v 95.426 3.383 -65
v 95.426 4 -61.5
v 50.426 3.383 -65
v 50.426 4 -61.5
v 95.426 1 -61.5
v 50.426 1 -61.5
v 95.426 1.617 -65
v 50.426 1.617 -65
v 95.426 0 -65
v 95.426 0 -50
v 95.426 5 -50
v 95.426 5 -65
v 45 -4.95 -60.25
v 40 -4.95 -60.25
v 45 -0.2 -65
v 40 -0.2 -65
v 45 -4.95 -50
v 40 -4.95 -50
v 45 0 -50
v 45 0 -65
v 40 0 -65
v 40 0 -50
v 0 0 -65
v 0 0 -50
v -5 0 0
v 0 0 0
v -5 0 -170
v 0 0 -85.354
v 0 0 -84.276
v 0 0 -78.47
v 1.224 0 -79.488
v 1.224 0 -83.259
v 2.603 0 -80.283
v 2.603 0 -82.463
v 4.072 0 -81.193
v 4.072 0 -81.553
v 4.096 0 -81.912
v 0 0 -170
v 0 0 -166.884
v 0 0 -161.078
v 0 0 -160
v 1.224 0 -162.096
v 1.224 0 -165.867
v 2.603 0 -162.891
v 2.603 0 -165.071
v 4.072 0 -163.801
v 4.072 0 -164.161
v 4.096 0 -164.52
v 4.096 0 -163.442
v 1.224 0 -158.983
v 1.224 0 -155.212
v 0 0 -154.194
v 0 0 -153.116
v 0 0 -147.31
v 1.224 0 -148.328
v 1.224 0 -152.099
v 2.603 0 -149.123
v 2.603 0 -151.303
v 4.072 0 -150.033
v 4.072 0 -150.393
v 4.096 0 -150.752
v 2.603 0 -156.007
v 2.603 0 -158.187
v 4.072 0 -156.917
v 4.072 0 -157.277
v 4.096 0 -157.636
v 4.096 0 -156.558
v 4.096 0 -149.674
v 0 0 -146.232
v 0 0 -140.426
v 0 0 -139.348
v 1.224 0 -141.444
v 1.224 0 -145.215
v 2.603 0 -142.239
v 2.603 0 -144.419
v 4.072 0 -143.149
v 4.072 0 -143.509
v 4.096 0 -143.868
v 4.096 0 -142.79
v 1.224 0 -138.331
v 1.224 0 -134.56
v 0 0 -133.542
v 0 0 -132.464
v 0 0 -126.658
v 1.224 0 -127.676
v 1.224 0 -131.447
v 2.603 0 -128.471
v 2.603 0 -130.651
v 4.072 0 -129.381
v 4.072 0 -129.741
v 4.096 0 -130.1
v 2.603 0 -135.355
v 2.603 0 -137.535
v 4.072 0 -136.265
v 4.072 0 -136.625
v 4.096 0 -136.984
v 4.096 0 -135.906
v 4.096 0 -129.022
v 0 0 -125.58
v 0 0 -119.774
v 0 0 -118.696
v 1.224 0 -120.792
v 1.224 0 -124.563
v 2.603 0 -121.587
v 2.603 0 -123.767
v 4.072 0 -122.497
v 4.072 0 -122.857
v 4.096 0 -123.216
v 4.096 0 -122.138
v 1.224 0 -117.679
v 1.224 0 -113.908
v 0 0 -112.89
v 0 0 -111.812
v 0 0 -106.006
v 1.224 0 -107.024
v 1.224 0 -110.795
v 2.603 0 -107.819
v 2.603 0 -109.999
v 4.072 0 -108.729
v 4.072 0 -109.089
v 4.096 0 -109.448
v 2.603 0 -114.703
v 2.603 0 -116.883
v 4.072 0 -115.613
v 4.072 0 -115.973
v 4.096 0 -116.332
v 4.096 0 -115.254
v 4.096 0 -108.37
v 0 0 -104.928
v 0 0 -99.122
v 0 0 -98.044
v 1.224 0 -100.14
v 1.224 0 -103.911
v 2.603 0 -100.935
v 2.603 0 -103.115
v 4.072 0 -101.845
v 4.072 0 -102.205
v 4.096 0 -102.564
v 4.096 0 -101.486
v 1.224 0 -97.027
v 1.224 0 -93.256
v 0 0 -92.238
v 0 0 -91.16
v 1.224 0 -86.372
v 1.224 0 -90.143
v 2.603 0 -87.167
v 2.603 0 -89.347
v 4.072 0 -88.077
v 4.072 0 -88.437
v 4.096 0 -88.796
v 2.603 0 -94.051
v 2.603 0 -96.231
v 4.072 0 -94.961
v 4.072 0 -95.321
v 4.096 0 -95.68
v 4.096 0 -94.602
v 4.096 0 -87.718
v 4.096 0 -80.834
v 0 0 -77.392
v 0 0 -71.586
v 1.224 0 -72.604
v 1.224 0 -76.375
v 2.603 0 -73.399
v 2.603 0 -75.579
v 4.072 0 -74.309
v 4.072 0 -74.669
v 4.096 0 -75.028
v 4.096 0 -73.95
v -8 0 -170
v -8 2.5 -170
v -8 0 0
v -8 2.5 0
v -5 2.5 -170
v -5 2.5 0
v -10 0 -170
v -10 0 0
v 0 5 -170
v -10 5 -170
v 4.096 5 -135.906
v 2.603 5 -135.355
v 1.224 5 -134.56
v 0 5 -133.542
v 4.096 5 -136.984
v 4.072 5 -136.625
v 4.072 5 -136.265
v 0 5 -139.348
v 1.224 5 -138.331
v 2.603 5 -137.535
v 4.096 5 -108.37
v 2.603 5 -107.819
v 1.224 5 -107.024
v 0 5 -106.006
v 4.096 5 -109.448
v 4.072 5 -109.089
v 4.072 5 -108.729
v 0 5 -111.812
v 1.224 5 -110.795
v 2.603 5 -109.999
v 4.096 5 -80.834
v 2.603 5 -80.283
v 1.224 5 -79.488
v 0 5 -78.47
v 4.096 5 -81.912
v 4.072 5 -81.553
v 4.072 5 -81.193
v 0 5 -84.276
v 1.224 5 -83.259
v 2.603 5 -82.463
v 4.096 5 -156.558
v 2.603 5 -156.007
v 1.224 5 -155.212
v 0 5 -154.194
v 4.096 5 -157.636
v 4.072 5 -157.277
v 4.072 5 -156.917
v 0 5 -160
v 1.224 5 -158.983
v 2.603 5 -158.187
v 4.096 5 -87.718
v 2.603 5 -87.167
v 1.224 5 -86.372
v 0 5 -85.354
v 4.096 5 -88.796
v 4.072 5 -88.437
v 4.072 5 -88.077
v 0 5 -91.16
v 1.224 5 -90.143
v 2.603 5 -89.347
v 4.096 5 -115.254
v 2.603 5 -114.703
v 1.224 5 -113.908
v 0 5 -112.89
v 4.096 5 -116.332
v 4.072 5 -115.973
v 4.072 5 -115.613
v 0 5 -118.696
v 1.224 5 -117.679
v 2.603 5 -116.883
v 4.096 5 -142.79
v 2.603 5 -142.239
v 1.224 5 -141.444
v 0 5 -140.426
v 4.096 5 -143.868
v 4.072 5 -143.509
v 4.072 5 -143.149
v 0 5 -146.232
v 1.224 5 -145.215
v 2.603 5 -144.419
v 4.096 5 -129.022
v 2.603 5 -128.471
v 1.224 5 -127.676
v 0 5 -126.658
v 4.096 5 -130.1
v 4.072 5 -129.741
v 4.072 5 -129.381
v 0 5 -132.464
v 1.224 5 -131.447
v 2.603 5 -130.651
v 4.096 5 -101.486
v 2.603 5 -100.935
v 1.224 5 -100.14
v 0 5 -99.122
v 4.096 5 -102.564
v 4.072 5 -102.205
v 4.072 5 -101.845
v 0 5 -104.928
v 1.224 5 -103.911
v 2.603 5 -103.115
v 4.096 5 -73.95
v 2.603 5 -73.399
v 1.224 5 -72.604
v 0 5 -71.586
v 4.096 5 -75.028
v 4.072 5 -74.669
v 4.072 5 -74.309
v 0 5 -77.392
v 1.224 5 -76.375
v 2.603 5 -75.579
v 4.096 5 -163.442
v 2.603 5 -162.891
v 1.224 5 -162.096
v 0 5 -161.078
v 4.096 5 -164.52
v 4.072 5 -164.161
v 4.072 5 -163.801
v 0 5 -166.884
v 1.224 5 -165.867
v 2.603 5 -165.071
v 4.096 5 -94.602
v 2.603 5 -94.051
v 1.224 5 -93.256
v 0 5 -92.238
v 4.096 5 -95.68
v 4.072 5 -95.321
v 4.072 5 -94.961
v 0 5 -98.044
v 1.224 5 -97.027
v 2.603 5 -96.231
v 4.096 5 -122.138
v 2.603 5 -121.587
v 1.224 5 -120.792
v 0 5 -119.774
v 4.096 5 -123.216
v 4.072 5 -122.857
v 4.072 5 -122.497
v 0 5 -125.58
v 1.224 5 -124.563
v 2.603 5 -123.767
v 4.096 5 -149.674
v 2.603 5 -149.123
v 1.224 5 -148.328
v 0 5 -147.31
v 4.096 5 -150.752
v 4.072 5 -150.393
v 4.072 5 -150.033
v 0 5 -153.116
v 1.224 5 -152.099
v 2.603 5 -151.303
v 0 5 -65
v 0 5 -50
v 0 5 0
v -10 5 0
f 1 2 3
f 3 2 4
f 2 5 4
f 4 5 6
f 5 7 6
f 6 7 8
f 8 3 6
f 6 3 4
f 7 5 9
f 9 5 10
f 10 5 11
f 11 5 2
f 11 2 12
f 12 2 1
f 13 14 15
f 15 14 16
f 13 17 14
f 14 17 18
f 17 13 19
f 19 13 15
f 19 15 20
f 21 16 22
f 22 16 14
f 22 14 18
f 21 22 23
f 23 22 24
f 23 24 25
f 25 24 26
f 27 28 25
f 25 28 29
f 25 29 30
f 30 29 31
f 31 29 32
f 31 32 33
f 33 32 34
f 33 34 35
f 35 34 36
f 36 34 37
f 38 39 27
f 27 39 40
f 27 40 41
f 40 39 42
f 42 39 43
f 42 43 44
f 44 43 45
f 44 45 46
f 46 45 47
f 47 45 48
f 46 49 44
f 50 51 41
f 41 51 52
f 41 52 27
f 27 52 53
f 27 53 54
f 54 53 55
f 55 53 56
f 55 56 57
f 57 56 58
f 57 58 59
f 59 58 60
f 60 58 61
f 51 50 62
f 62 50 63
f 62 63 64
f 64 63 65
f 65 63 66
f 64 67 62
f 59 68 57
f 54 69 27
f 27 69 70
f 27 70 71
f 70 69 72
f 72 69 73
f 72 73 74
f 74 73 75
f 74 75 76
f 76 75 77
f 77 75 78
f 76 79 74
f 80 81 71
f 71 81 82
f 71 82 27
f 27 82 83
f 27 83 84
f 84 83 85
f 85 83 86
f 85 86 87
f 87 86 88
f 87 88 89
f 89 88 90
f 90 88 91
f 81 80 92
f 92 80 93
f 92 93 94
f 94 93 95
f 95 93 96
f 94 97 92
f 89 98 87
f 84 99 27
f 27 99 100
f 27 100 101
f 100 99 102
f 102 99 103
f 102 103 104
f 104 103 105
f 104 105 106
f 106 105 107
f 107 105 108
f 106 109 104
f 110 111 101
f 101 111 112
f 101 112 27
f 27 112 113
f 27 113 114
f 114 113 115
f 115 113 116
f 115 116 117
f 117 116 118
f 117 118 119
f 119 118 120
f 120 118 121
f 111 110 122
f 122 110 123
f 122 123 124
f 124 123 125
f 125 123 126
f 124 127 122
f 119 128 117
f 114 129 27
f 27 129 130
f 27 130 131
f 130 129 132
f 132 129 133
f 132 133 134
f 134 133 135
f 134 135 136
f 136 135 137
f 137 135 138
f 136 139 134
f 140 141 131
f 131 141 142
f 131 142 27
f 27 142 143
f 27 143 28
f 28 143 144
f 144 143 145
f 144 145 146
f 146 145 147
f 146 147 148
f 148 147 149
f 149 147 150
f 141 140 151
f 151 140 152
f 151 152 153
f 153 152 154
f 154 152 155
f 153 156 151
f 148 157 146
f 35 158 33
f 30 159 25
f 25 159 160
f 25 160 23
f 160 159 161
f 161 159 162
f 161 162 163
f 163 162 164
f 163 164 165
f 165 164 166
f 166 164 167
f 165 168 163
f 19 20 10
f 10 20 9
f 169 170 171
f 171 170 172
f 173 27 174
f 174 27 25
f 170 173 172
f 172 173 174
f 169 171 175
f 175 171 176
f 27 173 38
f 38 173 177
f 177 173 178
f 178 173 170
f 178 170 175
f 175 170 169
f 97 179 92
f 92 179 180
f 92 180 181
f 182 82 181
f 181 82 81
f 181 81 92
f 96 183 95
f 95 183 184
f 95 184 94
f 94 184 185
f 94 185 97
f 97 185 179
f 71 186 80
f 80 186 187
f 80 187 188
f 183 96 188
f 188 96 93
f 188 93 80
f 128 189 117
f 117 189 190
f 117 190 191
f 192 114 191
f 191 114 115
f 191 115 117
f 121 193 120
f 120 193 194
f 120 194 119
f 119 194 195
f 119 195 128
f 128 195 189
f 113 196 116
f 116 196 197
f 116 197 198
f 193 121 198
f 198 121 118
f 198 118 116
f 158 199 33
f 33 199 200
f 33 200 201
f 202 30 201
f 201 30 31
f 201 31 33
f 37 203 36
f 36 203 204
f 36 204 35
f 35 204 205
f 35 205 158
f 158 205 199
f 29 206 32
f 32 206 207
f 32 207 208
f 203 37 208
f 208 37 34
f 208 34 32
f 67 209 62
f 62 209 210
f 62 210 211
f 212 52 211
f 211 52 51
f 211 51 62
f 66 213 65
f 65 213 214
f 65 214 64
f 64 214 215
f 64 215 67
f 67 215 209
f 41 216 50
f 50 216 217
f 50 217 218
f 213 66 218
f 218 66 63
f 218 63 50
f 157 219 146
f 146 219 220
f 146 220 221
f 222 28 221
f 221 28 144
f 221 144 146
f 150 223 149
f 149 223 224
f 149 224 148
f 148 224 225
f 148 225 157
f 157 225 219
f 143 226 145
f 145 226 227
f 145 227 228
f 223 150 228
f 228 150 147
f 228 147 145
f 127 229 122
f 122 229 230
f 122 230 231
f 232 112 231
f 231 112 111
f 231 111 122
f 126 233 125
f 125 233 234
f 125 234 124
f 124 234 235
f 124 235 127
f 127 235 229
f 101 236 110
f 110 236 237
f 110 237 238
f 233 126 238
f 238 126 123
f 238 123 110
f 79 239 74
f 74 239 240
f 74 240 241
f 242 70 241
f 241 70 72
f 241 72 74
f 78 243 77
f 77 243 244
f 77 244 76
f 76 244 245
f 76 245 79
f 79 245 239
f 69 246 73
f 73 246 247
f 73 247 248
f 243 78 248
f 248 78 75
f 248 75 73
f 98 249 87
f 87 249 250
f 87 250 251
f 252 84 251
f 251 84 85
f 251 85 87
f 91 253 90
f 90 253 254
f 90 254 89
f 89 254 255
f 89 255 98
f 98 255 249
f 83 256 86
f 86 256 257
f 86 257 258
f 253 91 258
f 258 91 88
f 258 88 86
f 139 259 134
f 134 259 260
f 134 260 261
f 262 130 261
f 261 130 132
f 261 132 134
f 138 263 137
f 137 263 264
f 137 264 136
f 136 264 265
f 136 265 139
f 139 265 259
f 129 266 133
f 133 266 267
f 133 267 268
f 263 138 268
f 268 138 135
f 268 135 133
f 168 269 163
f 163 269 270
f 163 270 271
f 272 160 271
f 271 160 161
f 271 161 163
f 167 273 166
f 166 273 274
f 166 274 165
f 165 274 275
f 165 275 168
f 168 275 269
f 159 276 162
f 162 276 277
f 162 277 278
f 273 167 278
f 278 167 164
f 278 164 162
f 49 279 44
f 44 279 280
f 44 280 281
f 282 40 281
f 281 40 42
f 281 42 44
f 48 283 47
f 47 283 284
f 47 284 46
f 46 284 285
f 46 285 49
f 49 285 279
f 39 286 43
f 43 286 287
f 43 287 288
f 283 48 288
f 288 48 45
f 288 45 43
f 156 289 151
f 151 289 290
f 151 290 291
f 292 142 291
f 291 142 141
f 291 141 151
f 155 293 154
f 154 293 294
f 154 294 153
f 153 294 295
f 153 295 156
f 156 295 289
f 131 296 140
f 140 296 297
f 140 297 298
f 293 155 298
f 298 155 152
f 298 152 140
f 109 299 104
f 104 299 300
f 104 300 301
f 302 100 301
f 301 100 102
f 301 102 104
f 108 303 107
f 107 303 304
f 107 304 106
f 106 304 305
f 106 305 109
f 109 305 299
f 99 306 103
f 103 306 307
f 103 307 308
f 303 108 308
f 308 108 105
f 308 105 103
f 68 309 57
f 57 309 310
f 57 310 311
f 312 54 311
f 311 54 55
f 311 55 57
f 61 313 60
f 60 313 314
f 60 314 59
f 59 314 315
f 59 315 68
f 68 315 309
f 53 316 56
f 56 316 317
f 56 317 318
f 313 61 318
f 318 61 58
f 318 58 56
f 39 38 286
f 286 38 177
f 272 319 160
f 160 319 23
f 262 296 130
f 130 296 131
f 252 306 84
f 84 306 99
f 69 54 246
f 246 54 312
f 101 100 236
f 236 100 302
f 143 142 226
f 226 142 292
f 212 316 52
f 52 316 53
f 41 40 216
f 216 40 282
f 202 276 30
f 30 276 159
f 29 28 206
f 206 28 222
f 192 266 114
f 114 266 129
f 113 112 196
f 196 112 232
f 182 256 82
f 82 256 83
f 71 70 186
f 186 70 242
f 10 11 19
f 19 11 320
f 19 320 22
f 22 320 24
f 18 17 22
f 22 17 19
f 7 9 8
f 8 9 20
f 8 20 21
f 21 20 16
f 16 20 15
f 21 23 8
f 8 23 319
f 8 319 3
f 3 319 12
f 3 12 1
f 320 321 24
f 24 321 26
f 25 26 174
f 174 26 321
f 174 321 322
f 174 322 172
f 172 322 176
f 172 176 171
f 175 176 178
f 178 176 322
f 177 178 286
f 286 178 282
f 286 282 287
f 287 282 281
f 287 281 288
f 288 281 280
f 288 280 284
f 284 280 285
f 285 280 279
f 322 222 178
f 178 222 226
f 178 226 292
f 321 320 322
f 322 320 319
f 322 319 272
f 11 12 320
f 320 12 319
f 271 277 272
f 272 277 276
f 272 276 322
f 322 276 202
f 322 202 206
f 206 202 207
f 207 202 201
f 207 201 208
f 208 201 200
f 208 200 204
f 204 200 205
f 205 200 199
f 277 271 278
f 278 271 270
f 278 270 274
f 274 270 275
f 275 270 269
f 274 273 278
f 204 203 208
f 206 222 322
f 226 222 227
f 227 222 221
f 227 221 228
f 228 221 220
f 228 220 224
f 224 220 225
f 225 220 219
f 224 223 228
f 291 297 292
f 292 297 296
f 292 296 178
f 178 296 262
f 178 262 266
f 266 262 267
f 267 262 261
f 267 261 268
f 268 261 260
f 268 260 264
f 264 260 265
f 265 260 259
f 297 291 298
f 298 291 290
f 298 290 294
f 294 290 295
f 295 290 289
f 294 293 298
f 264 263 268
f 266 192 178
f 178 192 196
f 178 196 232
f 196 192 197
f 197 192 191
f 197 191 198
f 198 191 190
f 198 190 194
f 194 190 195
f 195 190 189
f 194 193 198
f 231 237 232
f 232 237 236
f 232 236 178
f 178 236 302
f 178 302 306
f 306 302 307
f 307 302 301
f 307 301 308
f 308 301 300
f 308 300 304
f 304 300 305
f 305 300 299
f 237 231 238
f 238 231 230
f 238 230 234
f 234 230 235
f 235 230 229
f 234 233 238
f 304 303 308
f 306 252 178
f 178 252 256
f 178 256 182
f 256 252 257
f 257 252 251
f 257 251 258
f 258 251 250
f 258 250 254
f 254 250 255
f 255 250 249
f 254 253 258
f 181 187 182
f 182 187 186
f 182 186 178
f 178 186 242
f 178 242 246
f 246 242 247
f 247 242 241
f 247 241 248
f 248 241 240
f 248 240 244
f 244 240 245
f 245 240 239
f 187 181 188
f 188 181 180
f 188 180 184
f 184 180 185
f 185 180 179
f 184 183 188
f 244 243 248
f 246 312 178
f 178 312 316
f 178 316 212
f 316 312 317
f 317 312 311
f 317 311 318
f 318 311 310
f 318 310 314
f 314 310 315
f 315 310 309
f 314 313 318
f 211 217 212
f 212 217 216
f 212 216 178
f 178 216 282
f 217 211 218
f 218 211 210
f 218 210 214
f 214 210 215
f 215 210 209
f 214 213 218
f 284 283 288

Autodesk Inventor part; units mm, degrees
ref_plane "YZ Plane" through (0, 0, 0) normal (1, 0, 0) x (0, 1, 0)
ref_plane "XZ Plane" through (0, 0, 0) normal (0, 1, 0) x (-1, 0, 0)
ref_plane "XY Plane" through (0, 0, 0) normal (0, 0, 1) x (1, 0, 0)
sketch "Sketch1" plane through (0, 0, 0) normal (0, 1, 0) x (-1, 0, 0)
  line L0 (0, 0) -> (10, 0)
  line L1 (10, 0) -> (10, -170)
  line L2 (10, -170) -> (0, -170)
  line L3 (0, -170) -> (0, 0)
  dimension "d0" = 170
  dimension "d1" = 10
extrude "Extrusion1" add sketch "Sketch1" along normal blind 5
sketch "Sketch2" plane through (-10, 0, 0) normal (0, 0, 1) x (1, 0, 0)
  line L0 (2, 0) -> (2, 2.5)
  line L1 (2, 2.5) -> (5, 2.5)
  line L2 (0, 0) -> (0, 5) projected
  line L3 (5, 2.5) -> (5, 0)
  line L4 (0, 0) -> (10, 0) projected
  dimension "d6" = 2
  dimension "d9" = 3
  dimension "d75" = 2.5
sketch "Sketch4" plane through (0, 5, 0) normal (0, 1, 0) x (1, 0, 0)
  line L0 (95.426, 50) -> (95.426, 65)
  line L1 (95.426, 65) -> (0, 65)
  line L2 (95.426, 50) -> (0, 50)
  line L3 (-10, 0) -> (0, 0) projected
  line L4 (0, 0) -> (0, 170) projected
  line L5 (0, 50) -> (0, 65)
  dimension "d107" = 95.426
  dimension "d108" = 15
  dimension "d109" = 50
extrude "Extrusion4" add sketch "Sketch4" against normal blind 5
sketch "Sketch6" plane through (0, 5, 0) normal (0, 1, 0) x (1, 0, 0)
  line L0 (0, 0) -> (0, 170) projected
  line L1 (95.426, 50) -> (95.426, 65) projected
  arc A0 (4.0959, 156.5581) -> (0, 154.1943) centre (6.5788, 147.5251) ccw
  arc A1 (4.0959, 157.6362) -> (4.0959, 156.5581) centre (9.5694, 157.0972) ccw
  arc A2 (0, 160) -> (4.0959, 157.6362) centre (6.5788, 166.6692) ccw
  line L2 (0, 154.1943) -> (0, 160)
  arc A3 (4.0959, 163.4421) -> (0, 161.0783) centre (6.5788, 154.4091) ccw
  arc A4 (4.0959, 164.5202) -> (4.0959, 163.4421) centre (9.5694, 163.9812) ccw
  arc A5 (0, 166.884) -> (4.0959, 164.5202) centre (6.5788, 173.5532) ccw
  arc A6 (4.0959, 149.6741) -> (0, 147.3103) centre (6.5788, 140.6411) ccw
  arc A7 (4.0959, 150.7522) -> (4.0959, 149.6741) centre (9.5694, 150.2132) ccw
  arc A8 (0, 153.116) -> (4.0959, 150.7522) centre (6.5788, 159.7852) ccw
  arc A9 (4.0959, 142.7901) -> (0, 140.4263) centre (6.5788, 133.7571) ccw
  arc A10 (4.0959, 143.8682) -> (4.0959, 142.7901) centre (9.5694, 143.3292) ccw
  arc A11 (0, 146.232) -> (4.0959, 143.8682) centre (6.5788, 152.9012) ccw
  arc A12 (4.0959, 135.9061) -> (0, 133.5423) centre (6.5788, 126.8731) ccw
  arc A13 (4.0959, 136.9842) -> (4.0959, 135.9061) centre (9.5694, 136.4452) ccw
  arc A14 (0, 139.348) -> (4.0959, 136.9842) centre (6.5788, 146.0172) ccw
  arc A15 (4.0959, 129.0221) -> (0, 126.6583) centre (6.5788, 119.9891) ccw
  arc A16 (4.0959, 130.1002) -> (4.0959, 129.0221) centre (9.5694, 129.5612) ccw
  arc A17 (0, 132.464) -> (4.0959, 130.1002) centre (6.5788, 139.1332) ccw
  arc A18 (4.0959, 122.1381) -> (0, 119.7743) centre (6.5788, 113.1051) ccw
  arc A19 (4.0959, 123.2162) -> (4.0959, 122.1381) centre (9.5694, 122.6772) ccw
  arc A20 (0, 125.58) -> (4.0959, 123.2162) centre (6.5788, 132.2492) ccw
  arc A21 (4.0959, 115.2541) -> (0, 112.8903) centre (6.5788, 106.2211) ccw
  arc A22 (4.0959, 116.3322) -> (4.0959, 115.2541) centre (9.5694, 115.7932) ccw
  arc A23 (0, 118.696) -> (4.0959, 116.3322) centre (6.5788, 125.3652) ccw
  arc A24 (4.0959, 108.3701) -> (0, 106.0063) centre (6.5788, 99.3371) ccw
  arc A25 (4.0959, 109.4482) -> (4.0959, 108.3701) centre (9.5694, 108.9092) ccw
  arc A26 (0, 111.812) -> (4.0959, 109.4482) centre (6.5788, 118.4812) ccw
  arc A27 (4.0959, 101.4861) -> (0, 99.1223) centre (6.5788, 92.4531) ccw
  arc A28 (4.0959, 102.5642) -> (4.0959, 101.4861) centre (9.5694, 102.0252) ccw
  arc A29 (0, 104.928) -> (4.0959, 102.5642) centre (6.5788, 111.5972) ccw
  arc A30 (4.0959, 94.6021) -> (0, 92.2383) centre (6.5788, 85.5691) ccw
  arc A31 (4.0959, 95.6802) -> (4.0959, 94.6021) centre (9.5694, 95.1412) ccw
  arc A32 (0, 98.044) -> (4.0959, 95.6802) centre (6.5788, 104.7132) ccw
  arc A33 (4.0959, 87.7181) -> (0, 85.3543) centre (6.5788, 78.6851) ccw
  arc A34 (4.0959, 88.7962) -> (4.0959, 87.7181) centre (9.5694, 88.2572) ccw
  arc A35 (0, 91.16) -> (4.0959, 88.7962) centre (6.5788, 97.8292) ccw
  arc A36 (4.0959, 80.8341) -> (0, 78.4703) centre (6.5788, 71.8011) ccw
  arc A37 (4.0959, 81.9122) -> (4.0959, 80.8341) centre (9.5694, 81.3732) ccw
  arc A38 (0, 84.276) -> (4.0959, 81.9122) centre (6.5788, 90.9452) ccw
  arc A39 (4.0959, 73.9501) -> (0, 71.5863) centre (6.5788, 64.9171) ccw
  arc A40 (4.0959, 75.0282) -> (4.0959, 73.9501) centre (9.5694, 74.4892) ccw
  arc A41 (0, 77.392) -> (4.0959, 75.0282) centre (6.5788, 84.0612) ccw
  point P0 (0, 65)
  point P1 (0, 154.1943)
  point P2 (0, 166.884)
  point P3 (0, 161.0783)
  point P4 (0, 77.392)
  point P5 (0, 71.5863)
  point P6 (0, 84.276)
  point P7 (0, 78.4703)
  point P8 (0, 91.16)
  point P9 (0, 85.3543)
  point P10 (0, 98.044)
  point P11 (0, 92.2383)
  point P12 (0, 104.928)
  point P13 (0, 99.1223)
  point P14 (0, 111.812)
  point P15 (0, 106.0063)
  point P16 (0, 118.696)
  point P17 (0, 112.8903)
  point P18 (0, 125.58)
  point P19 (0, 119.7743)
  point P20 (0, 132.464)
  point P21 (0, 126.6583)
  point P22 (0, 139.348)
  point P23 (0, 133.5423)
  point P24 (0, 146.232)
  point P25 (0, 140.4263)
  point P26 (0, 153.116)
  point P27 (0, 147.3103)
  dimension "d80" = 6.884
  dimension "d88" = 6.884
  dimension "d200" = 5.5
  dimension "d201" = 9.368
  dimension "d202" = 95.426
  dimension "d203" = 95.426
  dimension "d204" = 85.8566
  dimension "d205" = 88.8472
  dimension "d206" = 88.8472
  dimension "d207" = 91.3301
  dimension "d208" = 91.3301
  dimension "d209" = 95.426
  dimension "d210" = 95.426
  dimension "d211" = 95.426
  dimension "d212" = 95.426
  dimension "d213" = 95.426
  dimension "d214" = 95.426
  dimension "d215" = 95.426
  dimension "d216" = 95.426
  dimension "d217" = 95.426
  dimension "d218" = 95.426
  dimension "d219" = 95.426
  dimension "d220" = 95.426
  dimension "d221" = 95.426
  dimension "d222" = 95.426
  dimension "d223" = 95.426
  dimension "d224" = 95.426
  dimension "d225" = 95.426
  dimension "d226" = 95.426
  dimension "d227" = 95.426
  dimension "d228" = 95.426
  dimension "d229" = 95.426
  dimension "d230" = 95.426
  dimension "d231" = 95.426
  dimension "d232" = 95.426
  dimension "d233" = 95.426
  dimension "d234" = 95.426
  dimension "d235" = 95.426
  dimension "d236" = 95.426
  dimension "d237" = 131.0291
  dimension "d238" = 139.594
  dimension "d239" = 135.4148
  dimension "d240" = 134.6518
  dimension "d241" = 130.6206
  dimension "d242" = 129.8867
  dimension "d243" = 126.0203
  dimension "d244" = 125.3186
  dimension "d245" = 121.6357
  dimension "d246" = 120.97
  dimension "d247" = 117.4912
  dimension "d248" = 116.8654
  dimension "d249" = 113.6128
  dimension "d250" = 113.0312
  dimension "d251" = 110.0288
  dimension "d252" = 109.496
  dimension "d253" = 106.7689
  dimension "d254" = 106.2896
  dimension "d255" = 103.8636
  dimension "d256" = 103.4426
  dimension "d257" = 101.3432
  dimension "d258" = 100.9853
  dimension "d259" = 99.2373
  dimension "d260" = 98.9468
  dimension "d261" = 97.5726
extrude "Extrusion6" add sketch "Sketch6" against normal blind 5
extrude "Extrusion10" cut sketch "Sketch2" against normal blind 300
sketch "Sketch9" plane through (0, 0, 0) normal (0, -1, 0) x (1, 0, 0)
  line L0 (95.426, -65) -> (0, -65) projected
  line L1 (40, -50) -> (45, -50)
  line L2 (45, -50) -> (45, -65)
  line L3 (45, -65) -> (40, -65)
  line L4 (40, -65) -> (40, -50)
  line L5 (95.426, -50) -> (0, -50) projected
  line L6 (-10, -170) -> (-10, 0) projected
  point P0 (0, 0)
  dimension "d93" = 5
  dimension "d94" = 55
extrude "Extrusion11" add sketch "Sketch9" along normal blind 4.95
chamfer "Chamfer1" distance 4.75 angle 45 1 edges at (42.5, -4.95, -65)
sketch "Sketch11" plane through (95.426, 5, -50) normal (1, 0, 0) x (0, 0, -1)
  line L0 (15, 0) -> (15, -5) projected
  line L1 (11.5, -1) -> (11.5, -4)
  line L2 (11.5, -4) -> (15, -3.3829)
  line L3 (11.5, -1) -> (15, -1.6171)
  point P0 (11.5, -2.5)
  point P1 (15, -2.5)
  dimension "d100" = 3.5
  dimension "d101" = 80
  dimension "d104" = 3
extrude "Extrusion12" cut sketch "Sketch11" against normal blind 45
properties part number "Rack"
